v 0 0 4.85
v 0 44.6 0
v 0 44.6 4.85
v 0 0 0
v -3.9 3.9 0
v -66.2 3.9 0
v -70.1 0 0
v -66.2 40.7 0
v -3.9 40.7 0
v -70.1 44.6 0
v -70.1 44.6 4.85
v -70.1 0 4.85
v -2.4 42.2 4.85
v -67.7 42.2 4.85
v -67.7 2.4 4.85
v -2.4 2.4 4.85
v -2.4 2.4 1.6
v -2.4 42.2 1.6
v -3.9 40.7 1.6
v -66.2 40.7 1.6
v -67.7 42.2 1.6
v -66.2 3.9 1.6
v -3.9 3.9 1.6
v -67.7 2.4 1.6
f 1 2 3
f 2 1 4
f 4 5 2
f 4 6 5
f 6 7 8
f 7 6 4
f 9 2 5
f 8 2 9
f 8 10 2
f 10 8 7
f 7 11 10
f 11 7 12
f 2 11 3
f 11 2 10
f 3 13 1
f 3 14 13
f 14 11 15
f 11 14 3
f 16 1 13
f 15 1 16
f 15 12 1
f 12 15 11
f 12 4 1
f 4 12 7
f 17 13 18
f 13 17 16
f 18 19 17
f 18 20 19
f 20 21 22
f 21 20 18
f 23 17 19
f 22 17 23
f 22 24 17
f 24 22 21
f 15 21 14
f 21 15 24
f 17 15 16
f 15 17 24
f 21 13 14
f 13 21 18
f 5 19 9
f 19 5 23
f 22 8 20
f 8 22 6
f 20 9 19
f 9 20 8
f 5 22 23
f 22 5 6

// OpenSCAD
// 4 x 5.85
// 3.95 x 6.5

TOLERANCE = 0.15;

CAVITY_LENGTH = 65   + TOLERANCE*2;
CAVITY_WIDTH  = 39.5 + TOLERANCE*2;
CAVITY_HEIGHT = 3.1  + TOLERANCE;

FRAME_THICKNESS_HORIZ = 2.4;
FRAME_THICKNESS_VERT = 1.6;

FRAME_LENGTH = CAVITY_LENGTH + FRAME_THICKNESS_HORIZ*2;
FRAME_WIDTH  = CAVITY_WIDTH  + FRAME_THICKNESS_HORIZ*2;
FRAME_HEIGHT = CAVITY_HEIGHT + FRAME_THICKNESS_VERT;

WINDOW_BORDER = 1.5;
MU = 0.001;

module Frame() {
    difference() {
        cube([FRAME_LENGTH, FRAME_WIDTH, FRAME_HEIGHT]);

        translate([FRAME_THICKNESS_HORIZ, FRAME_THICKNESS_HORIZ, -MU])
        cube([CAVITY_LENGTH, CAVITY_WIDTH, CAVITY_HEIGHT +MU]);

        translate([FRAME_THICKNESS_HORIZ+WINDOW_BORDER, FRAME_THICKNESS_HORIZ+WINDOW_BORDER, CAVITY_HEIGHT -MU])
        cube([CAVITY_LENGTH-WINDOW_BORDER*2, CAVITY_WIDTH-WINDOW_BORDER*2, FRAME_THICKNESS_VERT +MU*2]);
    }
}

translate([0, 0, FRAME_HEIGHT])
rotate([0, 180, 0])
Frame();
